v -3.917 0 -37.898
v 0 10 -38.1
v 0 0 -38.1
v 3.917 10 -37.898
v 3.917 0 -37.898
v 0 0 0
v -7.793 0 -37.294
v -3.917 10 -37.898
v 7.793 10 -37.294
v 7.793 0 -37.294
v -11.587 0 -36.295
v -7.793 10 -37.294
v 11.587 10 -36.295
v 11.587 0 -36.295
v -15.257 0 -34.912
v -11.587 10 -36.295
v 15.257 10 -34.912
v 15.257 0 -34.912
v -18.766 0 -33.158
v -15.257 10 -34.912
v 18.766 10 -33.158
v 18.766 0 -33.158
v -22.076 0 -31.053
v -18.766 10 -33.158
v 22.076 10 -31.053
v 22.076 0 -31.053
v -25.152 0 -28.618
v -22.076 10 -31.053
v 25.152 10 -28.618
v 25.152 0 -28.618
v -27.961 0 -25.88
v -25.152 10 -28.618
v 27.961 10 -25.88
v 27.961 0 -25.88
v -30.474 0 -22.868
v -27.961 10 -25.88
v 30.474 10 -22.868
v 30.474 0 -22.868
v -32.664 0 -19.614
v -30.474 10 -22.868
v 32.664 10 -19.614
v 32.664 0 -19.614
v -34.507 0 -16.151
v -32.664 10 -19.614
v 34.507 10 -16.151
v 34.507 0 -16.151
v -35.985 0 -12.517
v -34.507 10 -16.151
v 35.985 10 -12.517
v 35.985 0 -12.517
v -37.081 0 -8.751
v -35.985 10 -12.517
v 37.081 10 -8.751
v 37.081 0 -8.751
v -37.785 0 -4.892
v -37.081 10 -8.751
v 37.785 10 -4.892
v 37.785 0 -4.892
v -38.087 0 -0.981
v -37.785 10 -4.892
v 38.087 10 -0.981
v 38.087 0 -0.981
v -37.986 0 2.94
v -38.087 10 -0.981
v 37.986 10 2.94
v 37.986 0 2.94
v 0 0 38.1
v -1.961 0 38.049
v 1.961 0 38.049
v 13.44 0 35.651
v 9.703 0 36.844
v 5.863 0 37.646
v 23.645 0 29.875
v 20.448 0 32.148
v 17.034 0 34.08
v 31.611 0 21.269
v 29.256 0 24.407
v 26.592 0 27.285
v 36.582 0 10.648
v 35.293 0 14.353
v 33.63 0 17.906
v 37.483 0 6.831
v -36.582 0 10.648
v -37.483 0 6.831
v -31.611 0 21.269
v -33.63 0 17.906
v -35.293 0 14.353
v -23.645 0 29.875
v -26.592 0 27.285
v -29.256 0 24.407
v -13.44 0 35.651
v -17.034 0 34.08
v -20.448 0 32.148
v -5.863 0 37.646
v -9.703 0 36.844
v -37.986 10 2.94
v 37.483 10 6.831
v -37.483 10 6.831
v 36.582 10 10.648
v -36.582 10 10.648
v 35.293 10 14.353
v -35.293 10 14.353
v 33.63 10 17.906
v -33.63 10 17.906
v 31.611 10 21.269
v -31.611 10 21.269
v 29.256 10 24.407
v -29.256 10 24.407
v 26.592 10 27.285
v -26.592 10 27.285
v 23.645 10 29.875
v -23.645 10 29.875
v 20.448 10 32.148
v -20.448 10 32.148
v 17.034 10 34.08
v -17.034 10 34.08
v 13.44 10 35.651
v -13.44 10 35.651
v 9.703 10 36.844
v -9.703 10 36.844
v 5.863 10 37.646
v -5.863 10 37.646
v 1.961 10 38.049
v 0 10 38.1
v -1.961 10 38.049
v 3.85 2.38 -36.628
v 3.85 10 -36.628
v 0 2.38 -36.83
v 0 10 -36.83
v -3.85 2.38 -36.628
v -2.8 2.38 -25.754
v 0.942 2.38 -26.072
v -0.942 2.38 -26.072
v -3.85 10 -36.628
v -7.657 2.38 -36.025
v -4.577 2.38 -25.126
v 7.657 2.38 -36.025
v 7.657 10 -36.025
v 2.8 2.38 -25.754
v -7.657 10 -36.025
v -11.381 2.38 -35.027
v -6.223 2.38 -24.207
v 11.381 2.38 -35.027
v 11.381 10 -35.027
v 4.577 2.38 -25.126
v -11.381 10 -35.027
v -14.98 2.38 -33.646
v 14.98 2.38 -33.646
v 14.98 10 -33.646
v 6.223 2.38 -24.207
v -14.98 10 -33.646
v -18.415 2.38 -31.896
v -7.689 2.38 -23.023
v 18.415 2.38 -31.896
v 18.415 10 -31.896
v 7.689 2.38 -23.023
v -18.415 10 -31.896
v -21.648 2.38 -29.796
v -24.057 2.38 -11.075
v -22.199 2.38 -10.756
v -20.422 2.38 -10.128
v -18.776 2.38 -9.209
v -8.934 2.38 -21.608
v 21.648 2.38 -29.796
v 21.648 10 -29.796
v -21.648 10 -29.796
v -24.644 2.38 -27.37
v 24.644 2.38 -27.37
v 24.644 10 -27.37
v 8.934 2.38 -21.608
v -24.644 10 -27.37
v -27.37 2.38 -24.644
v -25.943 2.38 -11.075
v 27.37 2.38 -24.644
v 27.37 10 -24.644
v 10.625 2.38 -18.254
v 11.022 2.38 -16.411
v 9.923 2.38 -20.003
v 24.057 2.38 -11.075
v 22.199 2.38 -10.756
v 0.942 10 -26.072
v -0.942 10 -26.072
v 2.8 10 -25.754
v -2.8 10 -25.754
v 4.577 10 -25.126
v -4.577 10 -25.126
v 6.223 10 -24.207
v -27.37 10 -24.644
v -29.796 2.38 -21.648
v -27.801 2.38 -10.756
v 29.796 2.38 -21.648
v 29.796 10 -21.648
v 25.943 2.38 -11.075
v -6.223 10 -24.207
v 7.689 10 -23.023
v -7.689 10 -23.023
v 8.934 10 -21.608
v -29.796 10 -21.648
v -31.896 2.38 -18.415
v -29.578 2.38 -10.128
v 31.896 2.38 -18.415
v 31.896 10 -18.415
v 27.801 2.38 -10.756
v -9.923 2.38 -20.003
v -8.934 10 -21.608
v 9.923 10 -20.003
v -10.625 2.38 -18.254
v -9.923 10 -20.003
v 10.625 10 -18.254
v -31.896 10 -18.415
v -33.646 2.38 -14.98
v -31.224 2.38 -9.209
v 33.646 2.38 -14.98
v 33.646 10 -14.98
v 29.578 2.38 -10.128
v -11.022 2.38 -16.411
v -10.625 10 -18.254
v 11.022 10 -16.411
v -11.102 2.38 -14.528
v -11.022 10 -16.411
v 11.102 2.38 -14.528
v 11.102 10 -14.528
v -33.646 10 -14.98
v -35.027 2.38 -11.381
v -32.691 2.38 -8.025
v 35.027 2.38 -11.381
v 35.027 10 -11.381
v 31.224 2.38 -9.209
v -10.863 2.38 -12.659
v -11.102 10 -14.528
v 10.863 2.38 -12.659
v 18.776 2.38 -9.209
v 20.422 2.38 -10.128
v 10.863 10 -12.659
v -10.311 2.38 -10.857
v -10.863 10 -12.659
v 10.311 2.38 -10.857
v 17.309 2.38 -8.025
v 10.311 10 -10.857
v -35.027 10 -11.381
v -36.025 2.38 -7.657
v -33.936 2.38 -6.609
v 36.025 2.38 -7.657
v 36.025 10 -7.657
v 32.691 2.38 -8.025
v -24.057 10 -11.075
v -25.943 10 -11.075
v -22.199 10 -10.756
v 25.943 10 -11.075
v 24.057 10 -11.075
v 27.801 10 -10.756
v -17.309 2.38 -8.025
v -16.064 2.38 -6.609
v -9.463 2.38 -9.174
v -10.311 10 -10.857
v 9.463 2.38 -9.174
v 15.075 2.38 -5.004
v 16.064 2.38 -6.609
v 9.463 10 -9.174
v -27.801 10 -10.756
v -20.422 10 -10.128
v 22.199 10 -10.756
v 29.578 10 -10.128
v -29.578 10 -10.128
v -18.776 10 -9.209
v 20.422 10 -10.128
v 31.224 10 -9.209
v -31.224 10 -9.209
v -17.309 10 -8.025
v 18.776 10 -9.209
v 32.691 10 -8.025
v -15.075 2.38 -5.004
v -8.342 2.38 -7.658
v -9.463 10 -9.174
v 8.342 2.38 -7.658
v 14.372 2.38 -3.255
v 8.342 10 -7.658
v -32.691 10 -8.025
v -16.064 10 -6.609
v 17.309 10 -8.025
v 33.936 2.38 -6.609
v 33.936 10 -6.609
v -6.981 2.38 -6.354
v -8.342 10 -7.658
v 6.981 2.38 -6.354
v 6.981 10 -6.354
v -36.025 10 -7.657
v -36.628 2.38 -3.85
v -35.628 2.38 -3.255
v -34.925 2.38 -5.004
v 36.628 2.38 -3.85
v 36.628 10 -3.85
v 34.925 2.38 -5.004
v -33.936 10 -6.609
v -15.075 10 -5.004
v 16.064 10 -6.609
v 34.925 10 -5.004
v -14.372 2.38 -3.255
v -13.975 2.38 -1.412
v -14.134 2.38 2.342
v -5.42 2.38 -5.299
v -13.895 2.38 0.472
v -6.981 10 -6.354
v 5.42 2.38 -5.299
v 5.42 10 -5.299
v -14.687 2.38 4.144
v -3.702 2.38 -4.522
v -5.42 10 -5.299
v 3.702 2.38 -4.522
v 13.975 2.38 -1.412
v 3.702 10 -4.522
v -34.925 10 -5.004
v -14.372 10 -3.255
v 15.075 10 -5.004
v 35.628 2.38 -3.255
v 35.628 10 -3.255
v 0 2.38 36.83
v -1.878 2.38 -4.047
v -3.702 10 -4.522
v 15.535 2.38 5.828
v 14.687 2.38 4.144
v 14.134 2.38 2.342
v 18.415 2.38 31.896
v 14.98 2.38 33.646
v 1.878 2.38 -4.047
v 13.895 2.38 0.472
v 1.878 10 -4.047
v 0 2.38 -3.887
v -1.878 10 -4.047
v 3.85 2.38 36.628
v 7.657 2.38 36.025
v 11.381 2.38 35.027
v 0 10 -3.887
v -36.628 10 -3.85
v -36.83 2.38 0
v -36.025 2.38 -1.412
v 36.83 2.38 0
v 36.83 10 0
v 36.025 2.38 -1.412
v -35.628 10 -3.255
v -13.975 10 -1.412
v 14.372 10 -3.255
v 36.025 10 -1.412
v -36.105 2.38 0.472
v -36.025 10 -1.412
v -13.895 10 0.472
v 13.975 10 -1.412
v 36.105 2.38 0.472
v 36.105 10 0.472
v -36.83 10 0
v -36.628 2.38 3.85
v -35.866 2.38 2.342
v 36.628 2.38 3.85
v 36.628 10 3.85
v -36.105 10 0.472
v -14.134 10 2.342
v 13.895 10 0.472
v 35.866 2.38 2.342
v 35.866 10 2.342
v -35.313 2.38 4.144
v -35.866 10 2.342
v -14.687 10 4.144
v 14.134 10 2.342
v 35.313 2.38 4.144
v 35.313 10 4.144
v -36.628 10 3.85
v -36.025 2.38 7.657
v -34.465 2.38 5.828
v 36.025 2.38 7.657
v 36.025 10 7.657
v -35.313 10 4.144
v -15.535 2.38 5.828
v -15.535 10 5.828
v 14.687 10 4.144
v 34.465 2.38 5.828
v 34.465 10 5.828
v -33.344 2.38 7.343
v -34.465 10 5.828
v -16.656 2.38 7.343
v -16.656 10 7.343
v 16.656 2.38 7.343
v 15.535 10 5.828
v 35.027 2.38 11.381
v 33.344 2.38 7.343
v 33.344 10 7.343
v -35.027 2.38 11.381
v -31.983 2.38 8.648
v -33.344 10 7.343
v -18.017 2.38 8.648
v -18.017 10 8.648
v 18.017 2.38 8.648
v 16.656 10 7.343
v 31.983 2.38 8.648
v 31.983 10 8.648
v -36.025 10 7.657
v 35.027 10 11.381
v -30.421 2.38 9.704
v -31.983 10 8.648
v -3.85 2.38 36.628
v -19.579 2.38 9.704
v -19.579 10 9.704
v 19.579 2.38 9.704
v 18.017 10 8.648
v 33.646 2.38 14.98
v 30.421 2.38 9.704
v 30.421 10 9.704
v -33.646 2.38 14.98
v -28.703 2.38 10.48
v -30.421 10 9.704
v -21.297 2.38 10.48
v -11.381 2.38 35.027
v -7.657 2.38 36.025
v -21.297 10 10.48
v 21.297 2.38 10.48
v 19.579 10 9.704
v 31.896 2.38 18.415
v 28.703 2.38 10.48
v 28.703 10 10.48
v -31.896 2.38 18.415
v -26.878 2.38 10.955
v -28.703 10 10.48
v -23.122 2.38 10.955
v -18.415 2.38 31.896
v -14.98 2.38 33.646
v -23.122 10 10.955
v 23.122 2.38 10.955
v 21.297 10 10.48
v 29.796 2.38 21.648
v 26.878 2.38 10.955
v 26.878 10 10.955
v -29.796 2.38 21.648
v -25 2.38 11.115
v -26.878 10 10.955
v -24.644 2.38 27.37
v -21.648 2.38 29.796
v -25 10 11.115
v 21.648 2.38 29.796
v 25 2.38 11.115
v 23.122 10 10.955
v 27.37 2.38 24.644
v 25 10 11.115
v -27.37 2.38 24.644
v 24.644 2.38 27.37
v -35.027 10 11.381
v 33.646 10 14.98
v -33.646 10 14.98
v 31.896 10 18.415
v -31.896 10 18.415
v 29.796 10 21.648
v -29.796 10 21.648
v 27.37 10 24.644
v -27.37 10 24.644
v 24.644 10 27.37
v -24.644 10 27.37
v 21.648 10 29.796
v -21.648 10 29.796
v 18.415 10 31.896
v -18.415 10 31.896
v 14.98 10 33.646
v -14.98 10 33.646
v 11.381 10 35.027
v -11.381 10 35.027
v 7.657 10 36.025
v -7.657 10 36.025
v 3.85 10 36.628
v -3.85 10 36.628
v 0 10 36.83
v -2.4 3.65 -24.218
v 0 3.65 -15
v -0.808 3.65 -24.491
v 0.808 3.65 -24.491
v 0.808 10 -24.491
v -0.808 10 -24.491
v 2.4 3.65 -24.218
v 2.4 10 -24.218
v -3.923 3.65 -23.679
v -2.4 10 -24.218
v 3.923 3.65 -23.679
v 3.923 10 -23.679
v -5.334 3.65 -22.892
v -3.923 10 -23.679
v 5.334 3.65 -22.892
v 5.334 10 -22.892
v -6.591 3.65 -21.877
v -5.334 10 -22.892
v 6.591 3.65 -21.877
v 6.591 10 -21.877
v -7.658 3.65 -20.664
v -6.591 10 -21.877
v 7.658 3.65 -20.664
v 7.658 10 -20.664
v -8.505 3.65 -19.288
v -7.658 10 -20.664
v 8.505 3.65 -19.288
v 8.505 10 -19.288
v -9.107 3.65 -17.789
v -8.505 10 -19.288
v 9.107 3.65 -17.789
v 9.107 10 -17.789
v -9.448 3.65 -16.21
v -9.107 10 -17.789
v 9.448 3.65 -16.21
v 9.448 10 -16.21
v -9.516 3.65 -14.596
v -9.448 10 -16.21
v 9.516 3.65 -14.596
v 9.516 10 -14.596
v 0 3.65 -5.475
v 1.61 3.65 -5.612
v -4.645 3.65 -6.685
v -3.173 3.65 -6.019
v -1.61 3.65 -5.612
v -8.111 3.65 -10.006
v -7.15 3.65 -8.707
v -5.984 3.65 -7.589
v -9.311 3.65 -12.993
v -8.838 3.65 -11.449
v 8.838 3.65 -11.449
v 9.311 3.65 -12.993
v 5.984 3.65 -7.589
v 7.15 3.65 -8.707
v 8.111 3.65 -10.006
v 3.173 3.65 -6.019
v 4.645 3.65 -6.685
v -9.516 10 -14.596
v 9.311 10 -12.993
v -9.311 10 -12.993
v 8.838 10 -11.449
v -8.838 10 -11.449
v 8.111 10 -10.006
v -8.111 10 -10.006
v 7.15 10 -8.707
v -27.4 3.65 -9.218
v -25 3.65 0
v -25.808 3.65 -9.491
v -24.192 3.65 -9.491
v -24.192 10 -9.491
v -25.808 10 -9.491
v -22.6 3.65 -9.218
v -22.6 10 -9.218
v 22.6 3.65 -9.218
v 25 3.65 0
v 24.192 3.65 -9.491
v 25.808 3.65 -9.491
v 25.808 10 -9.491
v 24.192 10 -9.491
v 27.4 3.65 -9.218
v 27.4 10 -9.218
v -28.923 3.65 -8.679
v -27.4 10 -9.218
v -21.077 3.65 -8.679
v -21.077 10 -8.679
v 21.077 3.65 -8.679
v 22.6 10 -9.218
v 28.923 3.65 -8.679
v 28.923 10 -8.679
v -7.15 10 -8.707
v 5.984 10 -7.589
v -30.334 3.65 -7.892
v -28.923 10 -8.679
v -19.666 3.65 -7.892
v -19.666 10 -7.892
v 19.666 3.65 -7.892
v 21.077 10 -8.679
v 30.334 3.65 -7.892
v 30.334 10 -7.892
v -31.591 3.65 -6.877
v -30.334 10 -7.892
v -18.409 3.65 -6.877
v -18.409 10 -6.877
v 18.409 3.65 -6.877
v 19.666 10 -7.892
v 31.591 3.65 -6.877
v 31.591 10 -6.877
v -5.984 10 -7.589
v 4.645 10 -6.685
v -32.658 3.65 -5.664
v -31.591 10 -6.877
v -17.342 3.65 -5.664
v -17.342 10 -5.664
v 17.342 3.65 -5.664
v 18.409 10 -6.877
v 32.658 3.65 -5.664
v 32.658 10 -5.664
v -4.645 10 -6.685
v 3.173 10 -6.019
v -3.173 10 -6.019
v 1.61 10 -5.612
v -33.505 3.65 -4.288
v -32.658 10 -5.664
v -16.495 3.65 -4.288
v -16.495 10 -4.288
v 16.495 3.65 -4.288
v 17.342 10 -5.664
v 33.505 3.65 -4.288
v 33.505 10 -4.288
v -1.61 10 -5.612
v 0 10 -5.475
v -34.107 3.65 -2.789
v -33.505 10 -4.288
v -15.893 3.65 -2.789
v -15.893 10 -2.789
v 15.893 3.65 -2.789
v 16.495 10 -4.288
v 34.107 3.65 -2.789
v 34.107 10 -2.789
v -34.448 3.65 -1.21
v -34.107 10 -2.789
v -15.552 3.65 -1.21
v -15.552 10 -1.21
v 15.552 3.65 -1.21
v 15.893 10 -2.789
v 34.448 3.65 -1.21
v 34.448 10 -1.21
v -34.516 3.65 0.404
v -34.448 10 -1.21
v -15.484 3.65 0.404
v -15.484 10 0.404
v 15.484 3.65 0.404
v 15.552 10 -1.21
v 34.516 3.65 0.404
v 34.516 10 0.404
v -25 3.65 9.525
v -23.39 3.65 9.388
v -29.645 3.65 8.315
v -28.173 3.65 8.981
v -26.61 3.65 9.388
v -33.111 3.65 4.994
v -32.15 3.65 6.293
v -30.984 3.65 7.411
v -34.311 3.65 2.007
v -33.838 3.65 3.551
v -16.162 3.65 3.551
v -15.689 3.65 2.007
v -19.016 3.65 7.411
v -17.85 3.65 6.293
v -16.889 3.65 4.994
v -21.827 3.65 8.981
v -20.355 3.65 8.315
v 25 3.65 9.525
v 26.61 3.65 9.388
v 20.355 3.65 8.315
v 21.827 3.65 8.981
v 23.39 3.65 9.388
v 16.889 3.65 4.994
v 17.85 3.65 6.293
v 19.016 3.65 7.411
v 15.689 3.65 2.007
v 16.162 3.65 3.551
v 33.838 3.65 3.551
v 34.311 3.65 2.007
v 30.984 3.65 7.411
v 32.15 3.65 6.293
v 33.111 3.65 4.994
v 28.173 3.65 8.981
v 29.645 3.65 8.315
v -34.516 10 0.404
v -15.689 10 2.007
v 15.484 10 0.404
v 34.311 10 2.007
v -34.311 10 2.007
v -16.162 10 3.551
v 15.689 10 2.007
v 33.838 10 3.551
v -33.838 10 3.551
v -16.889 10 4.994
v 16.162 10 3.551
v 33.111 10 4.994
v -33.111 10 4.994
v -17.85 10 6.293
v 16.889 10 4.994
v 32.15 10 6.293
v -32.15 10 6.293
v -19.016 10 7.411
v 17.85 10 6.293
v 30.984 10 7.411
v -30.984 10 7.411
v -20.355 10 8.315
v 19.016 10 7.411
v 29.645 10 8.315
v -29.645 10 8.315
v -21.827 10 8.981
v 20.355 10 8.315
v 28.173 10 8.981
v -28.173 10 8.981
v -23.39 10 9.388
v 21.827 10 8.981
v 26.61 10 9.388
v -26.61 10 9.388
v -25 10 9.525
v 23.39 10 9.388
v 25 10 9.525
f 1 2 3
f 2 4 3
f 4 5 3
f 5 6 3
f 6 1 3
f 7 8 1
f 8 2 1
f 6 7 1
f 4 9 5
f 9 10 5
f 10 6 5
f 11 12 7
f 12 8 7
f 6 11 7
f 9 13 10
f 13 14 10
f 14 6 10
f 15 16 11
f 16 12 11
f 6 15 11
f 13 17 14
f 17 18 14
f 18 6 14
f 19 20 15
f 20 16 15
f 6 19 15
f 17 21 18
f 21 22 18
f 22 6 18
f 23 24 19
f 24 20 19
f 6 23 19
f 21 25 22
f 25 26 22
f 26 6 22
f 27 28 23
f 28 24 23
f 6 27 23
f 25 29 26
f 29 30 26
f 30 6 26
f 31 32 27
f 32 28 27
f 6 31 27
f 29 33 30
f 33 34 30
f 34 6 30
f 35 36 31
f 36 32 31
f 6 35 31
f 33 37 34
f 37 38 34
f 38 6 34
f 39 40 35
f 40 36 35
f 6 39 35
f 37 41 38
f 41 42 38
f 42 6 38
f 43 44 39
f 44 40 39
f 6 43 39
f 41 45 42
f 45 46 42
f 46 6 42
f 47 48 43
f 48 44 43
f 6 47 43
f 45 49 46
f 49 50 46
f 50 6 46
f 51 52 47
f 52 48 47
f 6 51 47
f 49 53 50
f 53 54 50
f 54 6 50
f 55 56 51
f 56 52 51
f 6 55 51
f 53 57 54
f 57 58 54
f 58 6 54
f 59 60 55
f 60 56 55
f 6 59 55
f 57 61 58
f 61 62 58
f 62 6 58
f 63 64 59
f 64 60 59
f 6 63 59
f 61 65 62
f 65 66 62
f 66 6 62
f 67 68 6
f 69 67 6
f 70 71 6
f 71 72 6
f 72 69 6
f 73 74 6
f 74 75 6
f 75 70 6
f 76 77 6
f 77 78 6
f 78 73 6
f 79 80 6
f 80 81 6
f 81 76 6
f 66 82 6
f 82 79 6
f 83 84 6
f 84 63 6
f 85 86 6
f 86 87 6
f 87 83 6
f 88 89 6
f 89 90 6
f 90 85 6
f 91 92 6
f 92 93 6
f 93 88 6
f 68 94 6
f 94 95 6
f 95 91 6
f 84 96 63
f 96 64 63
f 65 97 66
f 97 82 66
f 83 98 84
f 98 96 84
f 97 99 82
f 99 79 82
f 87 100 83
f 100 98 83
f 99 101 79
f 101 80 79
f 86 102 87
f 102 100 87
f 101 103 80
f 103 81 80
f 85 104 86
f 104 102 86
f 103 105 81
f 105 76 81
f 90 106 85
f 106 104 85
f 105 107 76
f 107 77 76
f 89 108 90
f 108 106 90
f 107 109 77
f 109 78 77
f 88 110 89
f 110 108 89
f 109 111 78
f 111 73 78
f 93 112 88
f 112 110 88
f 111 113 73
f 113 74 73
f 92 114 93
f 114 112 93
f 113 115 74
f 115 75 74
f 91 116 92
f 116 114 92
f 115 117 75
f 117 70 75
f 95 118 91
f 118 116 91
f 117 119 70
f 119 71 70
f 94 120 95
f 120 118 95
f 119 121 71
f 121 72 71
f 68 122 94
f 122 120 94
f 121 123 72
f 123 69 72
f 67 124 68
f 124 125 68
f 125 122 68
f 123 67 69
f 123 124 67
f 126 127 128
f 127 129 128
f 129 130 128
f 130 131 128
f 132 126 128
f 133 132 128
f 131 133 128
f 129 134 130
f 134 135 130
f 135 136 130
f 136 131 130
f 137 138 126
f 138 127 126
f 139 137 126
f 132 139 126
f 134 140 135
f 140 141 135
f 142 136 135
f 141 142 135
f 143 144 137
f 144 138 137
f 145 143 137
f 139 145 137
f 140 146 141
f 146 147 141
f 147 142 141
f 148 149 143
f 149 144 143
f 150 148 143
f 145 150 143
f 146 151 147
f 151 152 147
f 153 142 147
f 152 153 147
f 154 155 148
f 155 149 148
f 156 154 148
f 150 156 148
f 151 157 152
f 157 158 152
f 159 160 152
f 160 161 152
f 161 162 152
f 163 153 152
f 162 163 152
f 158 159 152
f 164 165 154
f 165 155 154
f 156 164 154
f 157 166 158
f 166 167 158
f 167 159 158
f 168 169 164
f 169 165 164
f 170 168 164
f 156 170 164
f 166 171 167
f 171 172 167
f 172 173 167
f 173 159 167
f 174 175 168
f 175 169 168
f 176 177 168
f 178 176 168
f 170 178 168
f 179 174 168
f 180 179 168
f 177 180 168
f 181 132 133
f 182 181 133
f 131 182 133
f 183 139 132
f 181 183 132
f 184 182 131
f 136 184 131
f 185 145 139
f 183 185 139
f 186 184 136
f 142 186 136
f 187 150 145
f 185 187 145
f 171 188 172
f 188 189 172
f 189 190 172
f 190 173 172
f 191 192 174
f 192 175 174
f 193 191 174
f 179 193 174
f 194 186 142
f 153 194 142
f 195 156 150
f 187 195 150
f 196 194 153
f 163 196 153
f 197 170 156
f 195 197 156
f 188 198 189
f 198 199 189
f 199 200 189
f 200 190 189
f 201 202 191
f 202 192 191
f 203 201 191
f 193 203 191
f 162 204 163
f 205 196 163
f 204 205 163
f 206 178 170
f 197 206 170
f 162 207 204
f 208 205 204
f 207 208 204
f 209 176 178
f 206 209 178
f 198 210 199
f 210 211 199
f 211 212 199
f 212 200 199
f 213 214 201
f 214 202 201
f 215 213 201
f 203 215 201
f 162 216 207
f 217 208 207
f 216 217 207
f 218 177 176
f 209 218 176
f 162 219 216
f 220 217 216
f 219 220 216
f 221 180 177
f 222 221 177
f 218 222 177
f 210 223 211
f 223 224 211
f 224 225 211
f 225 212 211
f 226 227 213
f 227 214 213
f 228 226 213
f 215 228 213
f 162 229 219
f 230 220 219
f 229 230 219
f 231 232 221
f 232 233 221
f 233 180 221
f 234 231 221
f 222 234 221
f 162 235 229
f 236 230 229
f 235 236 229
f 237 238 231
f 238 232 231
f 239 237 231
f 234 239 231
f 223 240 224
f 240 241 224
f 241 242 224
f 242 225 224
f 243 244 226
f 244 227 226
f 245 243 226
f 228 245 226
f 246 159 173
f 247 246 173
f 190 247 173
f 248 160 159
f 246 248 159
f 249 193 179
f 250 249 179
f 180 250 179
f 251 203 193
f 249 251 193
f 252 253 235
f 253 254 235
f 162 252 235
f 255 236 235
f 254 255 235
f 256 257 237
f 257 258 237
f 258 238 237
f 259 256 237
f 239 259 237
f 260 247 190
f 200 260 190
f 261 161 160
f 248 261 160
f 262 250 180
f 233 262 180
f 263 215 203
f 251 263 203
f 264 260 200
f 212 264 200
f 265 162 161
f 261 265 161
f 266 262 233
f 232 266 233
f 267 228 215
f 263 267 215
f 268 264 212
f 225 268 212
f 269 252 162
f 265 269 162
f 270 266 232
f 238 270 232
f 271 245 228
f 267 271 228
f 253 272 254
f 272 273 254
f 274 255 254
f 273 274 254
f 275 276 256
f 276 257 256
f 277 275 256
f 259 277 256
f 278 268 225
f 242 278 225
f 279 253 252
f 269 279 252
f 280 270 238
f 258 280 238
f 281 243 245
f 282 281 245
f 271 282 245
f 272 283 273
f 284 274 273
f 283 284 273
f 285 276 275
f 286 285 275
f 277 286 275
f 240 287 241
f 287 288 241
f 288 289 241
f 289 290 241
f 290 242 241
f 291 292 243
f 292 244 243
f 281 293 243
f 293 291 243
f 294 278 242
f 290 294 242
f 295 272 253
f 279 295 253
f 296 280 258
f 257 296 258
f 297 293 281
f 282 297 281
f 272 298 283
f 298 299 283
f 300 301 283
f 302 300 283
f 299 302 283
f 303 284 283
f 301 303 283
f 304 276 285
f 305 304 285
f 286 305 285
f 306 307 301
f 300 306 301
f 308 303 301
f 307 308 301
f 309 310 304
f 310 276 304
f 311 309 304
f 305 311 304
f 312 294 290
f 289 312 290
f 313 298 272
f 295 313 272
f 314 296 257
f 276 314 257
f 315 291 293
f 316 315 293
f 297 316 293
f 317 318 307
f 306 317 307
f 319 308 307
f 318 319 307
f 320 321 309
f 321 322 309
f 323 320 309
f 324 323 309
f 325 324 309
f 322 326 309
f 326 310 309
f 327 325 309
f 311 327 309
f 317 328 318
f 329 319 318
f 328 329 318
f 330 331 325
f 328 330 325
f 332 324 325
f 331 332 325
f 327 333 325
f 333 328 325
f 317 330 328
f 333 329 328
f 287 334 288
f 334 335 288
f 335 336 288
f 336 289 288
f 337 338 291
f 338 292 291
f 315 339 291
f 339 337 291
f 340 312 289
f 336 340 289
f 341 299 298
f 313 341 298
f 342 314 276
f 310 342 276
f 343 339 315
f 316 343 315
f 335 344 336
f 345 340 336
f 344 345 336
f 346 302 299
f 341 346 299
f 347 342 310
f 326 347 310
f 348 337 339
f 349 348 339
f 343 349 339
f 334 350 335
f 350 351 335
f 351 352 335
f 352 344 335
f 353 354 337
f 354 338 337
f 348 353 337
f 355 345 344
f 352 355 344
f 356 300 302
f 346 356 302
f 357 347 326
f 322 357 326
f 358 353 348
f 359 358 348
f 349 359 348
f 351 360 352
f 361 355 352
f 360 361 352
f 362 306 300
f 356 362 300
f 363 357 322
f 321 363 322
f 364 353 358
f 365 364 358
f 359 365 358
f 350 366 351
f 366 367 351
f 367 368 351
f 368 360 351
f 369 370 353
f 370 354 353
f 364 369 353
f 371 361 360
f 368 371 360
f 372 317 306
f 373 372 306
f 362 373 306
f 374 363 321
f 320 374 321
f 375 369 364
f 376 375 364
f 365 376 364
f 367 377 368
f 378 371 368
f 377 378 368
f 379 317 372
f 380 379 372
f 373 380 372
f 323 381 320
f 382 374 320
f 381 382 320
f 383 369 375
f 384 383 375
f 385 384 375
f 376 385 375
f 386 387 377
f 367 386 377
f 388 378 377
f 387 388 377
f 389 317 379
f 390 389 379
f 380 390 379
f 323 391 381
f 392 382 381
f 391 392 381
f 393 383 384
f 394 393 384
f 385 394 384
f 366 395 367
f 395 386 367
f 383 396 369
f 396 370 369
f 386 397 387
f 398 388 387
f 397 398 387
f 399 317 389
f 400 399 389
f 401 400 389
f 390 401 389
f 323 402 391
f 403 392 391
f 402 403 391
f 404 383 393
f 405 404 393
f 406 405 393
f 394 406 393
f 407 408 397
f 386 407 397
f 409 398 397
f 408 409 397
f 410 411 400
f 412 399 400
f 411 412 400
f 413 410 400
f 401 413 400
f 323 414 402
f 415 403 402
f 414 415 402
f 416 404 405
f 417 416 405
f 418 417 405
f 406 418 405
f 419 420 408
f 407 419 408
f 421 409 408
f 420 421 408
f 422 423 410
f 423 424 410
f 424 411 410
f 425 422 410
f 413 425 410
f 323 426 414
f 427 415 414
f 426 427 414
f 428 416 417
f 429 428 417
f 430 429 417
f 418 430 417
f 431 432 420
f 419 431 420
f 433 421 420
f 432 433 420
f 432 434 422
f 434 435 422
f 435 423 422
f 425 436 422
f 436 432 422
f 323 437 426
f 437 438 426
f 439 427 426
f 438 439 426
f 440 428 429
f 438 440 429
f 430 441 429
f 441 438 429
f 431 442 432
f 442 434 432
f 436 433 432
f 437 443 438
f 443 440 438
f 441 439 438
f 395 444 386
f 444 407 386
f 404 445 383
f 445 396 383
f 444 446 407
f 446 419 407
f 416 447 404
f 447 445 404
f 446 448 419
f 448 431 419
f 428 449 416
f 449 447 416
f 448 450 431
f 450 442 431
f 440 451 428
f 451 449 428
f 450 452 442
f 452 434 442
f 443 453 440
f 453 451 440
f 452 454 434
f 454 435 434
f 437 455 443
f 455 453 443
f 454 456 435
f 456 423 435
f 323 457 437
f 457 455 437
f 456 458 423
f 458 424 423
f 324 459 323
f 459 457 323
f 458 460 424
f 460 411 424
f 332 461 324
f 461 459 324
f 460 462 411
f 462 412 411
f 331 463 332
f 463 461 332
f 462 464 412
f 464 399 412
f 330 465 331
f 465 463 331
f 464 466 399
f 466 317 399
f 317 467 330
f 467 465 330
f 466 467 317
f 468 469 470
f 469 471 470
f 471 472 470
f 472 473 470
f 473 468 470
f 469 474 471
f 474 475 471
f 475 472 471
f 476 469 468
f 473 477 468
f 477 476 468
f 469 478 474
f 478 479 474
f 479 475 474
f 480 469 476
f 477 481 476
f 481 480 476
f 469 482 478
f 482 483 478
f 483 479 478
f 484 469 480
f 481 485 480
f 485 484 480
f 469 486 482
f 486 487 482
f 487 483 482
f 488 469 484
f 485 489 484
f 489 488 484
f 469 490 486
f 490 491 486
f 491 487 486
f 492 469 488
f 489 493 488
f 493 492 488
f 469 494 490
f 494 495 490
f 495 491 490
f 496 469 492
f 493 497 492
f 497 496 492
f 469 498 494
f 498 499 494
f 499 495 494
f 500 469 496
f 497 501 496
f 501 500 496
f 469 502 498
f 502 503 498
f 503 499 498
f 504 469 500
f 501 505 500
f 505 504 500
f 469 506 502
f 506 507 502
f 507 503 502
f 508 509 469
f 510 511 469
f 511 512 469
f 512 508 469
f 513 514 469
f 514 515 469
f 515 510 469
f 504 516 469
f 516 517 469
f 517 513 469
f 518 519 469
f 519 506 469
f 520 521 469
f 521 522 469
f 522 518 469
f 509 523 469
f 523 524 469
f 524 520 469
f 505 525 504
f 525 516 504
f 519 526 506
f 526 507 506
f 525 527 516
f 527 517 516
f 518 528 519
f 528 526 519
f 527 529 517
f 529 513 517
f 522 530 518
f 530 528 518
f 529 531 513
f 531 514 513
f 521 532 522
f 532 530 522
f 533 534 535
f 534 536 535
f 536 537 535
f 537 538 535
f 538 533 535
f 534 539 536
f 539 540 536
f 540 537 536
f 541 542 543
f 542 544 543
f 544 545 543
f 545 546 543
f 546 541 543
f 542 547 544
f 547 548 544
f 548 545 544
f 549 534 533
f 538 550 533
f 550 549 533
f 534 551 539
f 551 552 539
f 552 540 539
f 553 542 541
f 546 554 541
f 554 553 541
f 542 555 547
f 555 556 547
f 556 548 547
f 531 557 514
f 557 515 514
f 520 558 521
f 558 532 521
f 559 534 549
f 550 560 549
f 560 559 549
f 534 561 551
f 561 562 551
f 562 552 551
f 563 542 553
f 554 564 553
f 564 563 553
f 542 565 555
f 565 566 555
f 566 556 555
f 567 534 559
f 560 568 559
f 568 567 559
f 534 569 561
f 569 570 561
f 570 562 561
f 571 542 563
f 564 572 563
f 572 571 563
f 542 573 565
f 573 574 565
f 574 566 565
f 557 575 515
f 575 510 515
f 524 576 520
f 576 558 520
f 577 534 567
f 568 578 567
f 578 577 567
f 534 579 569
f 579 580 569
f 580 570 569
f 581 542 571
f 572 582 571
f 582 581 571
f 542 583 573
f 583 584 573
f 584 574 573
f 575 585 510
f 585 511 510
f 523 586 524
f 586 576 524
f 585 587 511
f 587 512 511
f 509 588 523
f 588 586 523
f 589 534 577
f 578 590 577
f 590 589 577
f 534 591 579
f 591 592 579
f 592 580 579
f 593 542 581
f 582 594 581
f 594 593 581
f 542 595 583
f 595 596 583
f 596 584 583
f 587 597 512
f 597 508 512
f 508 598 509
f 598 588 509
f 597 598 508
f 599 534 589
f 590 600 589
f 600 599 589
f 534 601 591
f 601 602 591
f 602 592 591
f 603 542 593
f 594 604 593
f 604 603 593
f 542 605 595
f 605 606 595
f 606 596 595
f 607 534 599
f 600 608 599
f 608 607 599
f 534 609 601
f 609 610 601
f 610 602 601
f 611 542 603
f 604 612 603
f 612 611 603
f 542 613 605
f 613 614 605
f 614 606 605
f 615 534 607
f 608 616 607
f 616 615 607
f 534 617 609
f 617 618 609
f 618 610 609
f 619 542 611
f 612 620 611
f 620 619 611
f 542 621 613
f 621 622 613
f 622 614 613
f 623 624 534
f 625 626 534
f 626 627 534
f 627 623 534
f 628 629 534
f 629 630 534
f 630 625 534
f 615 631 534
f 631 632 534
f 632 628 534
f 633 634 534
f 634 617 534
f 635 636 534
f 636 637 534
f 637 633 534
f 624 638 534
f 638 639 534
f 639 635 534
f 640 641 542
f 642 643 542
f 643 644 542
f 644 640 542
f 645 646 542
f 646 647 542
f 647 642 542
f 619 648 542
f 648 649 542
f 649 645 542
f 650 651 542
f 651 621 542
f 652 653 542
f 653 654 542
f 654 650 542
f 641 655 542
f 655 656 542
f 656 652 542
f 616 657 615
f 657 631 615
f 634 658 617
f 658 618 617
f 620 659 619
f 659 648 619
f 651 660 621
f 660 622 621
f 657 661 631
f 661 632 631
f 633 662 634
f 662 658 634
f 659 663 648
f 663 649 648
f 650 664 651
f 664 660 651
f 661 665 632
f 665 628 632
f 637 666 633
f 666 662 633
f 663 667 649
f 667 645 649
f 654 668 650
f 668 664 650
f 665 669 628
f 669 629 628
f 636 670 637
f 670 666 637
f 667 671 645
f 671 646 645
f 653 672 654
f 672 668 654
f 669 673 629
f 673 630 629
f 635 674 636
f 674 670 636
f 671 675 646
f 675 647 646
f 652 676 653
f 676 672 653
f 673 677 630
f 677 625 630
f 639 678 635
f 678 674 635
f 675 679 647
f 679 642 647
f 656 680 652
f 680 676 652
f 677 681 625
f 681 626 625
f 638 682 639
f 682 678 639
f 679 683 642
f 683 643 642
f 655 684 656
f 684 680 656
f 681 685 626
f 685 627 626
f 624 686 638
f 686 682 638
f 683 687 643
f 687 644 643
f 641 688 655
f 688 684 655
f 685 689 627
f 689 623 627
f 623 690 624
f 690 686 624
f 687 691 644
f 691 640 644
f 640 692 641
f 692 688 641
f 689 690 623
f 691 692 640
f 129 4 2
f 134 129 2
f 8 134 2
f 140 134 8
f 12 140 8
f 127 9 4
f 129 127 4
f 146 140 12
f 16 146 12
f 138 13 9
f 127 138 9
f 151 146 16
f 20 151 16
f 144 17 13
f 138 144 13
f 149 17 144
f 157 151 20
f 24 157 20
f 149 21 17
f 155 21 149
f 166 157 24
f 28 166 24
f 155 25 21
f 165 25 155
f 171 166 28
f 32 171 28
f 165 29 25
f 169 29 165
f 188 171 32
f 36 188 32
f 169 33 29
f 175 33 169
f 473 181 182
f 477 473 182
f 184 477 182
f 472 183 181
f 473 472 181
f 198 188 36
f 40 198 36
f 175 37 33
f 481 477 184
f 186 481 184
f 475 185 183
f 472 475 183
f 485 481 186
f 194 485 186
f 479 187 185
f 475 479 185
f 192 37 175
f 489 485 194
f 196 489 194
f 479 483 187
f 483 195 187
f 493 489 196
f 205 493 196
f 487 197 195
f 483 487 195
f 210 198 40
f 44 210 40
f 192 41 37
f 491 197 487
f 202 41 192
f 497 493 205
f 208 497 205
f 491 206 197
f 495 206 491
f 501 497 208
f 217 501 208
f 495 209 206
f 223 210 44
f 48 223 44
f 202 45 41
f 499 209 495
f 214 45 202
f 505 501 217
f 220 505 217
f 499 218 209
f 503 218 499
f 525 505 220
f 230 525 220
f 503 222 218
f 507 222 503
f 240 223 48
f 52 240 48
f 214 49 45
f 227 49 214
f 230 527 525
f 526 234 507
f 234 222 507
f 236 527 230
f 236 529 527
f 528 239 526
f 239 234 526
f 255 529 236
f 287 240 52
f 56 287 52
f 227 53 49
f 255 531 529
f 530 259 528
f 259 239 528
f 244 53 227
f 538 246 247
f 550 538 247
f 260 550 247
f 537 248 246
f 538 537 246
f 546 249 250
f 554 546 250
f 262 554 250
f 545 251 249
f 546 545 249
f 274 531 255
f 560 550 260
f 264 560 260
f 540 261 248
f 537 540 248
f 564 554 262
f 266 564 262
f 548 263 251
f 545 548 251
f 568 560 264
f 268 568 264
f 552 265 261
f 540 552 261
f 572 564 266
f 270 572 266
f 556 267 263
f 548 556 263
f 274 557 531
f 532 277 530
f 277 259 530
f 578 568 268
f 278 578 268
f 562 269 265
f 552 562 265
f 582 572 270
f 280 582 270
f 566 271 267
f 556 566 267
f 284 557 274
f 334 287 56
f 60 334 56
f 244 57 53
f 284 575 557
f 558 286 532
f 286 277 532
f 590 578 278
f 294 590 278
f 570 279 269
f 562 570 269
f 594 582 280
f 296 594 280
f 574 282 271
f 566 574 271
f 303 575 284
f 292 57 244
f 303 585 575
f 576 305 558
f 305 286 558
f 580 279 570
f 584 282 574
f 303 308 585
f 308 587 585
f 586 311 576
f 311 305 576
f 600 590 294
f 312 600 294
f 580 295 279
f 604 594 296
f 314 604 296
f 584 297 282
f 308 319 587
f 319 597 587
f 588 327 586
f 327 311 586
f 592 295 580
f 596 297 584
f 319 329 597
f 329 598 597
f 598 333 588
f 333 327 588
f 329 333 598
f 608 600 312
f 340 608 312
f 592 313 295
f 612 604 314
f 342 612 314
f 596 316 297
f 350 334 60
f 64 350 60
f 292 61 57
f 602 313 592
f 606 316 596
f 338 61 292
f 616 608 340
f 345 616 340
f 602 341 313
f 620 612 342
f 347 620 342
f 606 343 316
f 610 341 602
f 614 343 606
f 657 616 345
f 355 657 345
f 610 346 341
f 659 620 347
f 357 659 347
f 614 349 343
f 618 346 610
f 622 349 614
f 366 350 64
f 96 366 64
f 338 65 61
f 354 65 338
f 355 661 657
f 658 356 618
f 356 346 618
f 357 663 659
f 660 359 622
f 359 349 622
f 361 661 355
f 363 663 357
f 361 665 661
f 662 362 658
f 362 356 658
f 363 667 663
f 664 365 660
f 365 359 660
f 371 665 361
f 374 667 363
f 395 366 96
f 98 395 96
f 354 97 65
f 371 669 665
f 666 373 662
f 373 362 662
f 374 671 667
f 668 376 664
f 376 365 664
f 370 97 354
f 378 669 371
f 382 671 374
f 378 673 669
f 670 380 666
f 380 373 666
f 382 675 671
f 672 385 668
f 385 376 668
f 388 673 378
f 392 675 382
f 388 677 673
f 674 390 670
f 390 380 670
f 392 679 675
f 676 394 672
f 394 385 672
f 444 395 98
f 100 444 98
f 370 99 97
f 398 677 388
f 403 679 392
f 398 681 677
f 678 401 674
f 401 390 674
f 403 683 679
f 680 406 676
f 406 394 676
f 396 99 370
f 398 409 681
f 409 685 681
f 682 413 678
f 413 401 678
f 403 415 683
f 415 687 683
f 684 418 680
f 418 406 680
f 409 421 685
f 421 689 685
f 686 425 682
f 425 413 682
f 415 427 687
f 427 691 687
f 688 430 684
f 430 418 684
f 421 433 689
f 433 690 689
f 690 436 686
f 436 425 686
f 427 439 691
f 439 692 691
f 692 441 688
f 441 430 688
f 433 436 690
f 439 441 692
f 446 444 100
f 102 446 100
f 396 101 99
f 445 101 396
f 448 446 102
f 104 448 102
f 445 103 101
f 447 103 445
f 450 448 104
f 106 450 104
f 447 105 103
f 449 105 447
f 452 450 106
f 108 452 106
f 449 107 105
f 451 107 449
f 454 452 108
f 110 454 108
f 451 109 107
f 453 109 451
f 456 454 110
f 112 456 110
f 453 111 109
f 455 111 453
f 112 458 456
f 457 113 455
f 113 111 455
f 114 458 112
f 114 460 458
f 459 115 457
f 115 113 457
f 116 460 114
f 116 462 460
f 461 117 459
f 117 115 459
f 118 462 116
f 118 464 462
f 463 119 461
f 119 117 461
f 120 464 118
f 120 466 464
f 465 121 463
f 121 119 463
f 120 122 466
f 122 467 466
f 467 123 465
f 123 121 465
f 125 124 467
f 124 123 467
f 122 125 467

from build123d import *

# Parameters (mm, degrees)
SKETCH1_R           = 38.1
BOSS_EXTRUDE1_DEPTH = 10
SKETCH2_R           = 9.525
CUT_EXTRUDE1_DEPTH  = 6.35
SKETCH3_R           = 36.83
SKETCH3_R_2         = 11.1125
SKETCH3_R_3         = 11.115
CUT_EXTRUDE2_DEPTH  = 7.62


with BuildPart() as part:
    # Sketch1 → Boss-Extrude1 (new body)
    with BuildSketch(Plane(origin=(0, 0, 0), x_dir=(1, 0, 0), z_dir=(0, 1, 0))):
        Circle(SKETCH1_R)
    extrude(amount=BOSS_EXTRUDE1_DEPTH)

    # Sketch2 → Cut-Extrude1 (cut)
    with BuildSketch(Plane(origin=(0, 10, 0), x_dir=(1, 0, 0), z_dir=(0, 1, 0))):
        with Locations((25, 0)):
            Circle(SKETCH2_R)
        with Locations((-25, 0)):
            Circle(SKETCH2_R)
        with Locations((0, 15)):
            Circle(SKETCH2_R)
    extrude(amount=-CUT_EXTRUDE1_DEPTH, mode=Mode.SUBTRACT)

    # Sketch3 → Cut-Extrude2 (cut)
    with BuildSketch(Plane(origin=(0, 10, 0), x_dir=(1, 0, 0), z_dir=(0, 1, 0))):
        Circle(SKETCH3_R)
        with Locations((0, 15)):
            Circle(SKETCH3_R_2, mode=Mode.SUBTRACT)
        with Locations((25, 0)):
            Circle(SKETCH3_R_3, mode=Mode.SUBTRACT)
        with Locations((-25, 0)):
            Circle(SKETCH3_R_3, mode=Mode.SUBTRACT)
    extrude(amount=-CUT_EXTRUDE2_DEPTH, mode=Mode.SUBTRACT)


solid = part.part
